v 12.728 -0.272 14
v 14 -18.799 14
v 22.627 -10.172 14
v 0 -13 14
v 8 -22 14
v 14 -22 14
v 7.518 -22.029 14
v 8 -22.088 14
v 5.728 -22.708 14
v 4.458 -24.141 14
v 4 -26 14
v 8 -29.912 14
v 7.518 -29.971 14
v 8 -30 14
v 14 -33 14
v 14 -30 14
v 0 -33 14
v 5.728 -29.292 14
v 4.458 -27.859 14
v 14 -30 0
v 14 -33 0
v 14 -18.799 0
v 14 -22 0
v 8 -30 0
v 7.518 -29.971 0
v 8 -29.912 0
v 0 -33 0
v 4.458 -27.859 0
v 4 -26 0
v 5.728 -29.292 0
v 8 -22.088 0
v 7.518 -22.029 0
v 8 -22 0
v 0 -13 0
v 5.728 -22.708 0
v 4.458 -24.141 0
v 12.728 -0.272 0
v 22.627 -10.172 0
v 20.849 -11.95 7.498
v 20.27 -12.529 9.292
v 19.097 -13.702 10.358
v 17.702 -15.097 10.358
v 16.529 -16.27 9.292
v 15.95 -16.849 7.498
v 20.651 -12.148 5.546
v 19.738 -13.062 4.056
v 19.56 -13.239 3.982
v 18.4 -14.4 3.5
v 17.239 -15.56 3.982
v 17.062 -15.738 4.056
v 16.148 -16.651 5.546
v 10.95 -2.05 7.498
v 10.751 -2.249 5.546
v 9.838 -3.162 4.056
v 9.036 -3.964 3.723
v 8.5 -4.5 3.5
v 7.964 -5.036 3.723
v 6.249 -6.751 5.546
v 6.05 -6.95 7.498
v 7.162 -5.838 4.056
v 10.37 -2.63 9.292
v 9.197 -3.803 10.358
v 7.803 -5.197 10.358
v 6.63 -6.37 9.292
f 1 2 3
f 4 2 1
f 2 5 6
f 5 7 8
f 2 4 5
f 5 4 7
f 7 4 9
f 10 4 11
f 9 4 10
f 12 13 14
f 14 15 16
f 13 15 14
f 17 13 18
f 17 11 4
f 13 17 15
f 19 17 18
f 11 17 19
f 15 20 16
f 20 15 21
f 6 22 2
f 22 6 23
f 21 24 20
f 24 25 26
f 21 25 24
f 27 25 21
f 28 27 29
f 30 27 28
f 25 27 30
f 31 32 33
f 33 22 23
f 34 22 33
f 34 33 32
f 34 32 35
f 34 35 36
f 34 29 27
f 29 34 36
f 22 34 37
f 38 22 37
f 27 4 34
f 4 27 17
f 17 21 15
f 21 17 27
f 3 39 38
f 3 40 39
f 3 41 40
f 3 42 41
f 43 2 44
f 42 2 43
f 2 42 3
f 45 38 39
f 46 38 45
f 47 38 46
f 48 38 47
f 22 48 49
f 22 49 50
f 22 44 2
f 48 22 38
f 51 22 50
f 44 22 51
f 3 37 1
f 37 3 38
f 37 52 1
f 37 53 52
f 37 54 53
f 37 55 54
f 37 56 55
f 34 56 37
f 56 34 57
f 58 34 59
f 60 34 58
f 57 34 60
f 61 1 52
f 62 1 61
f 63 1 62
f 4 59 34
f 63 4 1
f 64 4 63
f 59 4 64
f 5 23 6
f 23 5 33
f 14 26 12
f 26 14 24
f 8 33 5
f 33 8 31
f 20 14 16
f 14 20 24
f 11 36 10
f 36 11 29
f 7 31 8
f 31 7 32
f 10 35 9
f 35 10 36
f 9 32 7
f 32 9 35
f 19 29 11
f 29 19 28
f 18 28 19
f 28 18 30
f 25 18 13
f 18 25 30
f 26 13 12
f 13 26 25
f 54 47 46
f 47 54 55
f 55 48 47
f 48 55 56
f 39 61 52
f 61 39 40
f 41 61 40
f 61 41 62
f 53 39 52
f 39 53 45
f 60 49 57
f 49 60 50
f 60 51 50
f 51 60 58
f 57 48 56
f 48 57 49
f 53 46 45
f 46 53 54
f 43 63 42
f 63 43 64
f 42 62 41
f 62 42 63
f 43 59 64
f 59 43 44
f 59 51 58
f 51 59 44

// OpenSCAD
//Mark Benson
// CC NC 2013
//
//i3 Spool holder
//
//Spool spindle holder

translate([0,-33,14]) rotate(a=90, v=[0,1,0])difference()
{
	union()
	{
		//main body of part
		union()
		{
			cube([14,20,14]);
			translate([0,20,0]) rotate([45,0,0]) cube([14,18,14]);
		}

	}

	union()
	{
		//splindle cut away
		union()
		{
			translate([-3,3,8]) cube([20,8,10]);
			translate([-3,7,8]) rotate(a=90, v=[0,1,0]) cylinder(r=4, h=20);
		}

		//shaft cut out
		translate([7,37,0]) rotate(a=45, v=[1,0,0]) cylinder(r=3.5, h=30);

	}
}
